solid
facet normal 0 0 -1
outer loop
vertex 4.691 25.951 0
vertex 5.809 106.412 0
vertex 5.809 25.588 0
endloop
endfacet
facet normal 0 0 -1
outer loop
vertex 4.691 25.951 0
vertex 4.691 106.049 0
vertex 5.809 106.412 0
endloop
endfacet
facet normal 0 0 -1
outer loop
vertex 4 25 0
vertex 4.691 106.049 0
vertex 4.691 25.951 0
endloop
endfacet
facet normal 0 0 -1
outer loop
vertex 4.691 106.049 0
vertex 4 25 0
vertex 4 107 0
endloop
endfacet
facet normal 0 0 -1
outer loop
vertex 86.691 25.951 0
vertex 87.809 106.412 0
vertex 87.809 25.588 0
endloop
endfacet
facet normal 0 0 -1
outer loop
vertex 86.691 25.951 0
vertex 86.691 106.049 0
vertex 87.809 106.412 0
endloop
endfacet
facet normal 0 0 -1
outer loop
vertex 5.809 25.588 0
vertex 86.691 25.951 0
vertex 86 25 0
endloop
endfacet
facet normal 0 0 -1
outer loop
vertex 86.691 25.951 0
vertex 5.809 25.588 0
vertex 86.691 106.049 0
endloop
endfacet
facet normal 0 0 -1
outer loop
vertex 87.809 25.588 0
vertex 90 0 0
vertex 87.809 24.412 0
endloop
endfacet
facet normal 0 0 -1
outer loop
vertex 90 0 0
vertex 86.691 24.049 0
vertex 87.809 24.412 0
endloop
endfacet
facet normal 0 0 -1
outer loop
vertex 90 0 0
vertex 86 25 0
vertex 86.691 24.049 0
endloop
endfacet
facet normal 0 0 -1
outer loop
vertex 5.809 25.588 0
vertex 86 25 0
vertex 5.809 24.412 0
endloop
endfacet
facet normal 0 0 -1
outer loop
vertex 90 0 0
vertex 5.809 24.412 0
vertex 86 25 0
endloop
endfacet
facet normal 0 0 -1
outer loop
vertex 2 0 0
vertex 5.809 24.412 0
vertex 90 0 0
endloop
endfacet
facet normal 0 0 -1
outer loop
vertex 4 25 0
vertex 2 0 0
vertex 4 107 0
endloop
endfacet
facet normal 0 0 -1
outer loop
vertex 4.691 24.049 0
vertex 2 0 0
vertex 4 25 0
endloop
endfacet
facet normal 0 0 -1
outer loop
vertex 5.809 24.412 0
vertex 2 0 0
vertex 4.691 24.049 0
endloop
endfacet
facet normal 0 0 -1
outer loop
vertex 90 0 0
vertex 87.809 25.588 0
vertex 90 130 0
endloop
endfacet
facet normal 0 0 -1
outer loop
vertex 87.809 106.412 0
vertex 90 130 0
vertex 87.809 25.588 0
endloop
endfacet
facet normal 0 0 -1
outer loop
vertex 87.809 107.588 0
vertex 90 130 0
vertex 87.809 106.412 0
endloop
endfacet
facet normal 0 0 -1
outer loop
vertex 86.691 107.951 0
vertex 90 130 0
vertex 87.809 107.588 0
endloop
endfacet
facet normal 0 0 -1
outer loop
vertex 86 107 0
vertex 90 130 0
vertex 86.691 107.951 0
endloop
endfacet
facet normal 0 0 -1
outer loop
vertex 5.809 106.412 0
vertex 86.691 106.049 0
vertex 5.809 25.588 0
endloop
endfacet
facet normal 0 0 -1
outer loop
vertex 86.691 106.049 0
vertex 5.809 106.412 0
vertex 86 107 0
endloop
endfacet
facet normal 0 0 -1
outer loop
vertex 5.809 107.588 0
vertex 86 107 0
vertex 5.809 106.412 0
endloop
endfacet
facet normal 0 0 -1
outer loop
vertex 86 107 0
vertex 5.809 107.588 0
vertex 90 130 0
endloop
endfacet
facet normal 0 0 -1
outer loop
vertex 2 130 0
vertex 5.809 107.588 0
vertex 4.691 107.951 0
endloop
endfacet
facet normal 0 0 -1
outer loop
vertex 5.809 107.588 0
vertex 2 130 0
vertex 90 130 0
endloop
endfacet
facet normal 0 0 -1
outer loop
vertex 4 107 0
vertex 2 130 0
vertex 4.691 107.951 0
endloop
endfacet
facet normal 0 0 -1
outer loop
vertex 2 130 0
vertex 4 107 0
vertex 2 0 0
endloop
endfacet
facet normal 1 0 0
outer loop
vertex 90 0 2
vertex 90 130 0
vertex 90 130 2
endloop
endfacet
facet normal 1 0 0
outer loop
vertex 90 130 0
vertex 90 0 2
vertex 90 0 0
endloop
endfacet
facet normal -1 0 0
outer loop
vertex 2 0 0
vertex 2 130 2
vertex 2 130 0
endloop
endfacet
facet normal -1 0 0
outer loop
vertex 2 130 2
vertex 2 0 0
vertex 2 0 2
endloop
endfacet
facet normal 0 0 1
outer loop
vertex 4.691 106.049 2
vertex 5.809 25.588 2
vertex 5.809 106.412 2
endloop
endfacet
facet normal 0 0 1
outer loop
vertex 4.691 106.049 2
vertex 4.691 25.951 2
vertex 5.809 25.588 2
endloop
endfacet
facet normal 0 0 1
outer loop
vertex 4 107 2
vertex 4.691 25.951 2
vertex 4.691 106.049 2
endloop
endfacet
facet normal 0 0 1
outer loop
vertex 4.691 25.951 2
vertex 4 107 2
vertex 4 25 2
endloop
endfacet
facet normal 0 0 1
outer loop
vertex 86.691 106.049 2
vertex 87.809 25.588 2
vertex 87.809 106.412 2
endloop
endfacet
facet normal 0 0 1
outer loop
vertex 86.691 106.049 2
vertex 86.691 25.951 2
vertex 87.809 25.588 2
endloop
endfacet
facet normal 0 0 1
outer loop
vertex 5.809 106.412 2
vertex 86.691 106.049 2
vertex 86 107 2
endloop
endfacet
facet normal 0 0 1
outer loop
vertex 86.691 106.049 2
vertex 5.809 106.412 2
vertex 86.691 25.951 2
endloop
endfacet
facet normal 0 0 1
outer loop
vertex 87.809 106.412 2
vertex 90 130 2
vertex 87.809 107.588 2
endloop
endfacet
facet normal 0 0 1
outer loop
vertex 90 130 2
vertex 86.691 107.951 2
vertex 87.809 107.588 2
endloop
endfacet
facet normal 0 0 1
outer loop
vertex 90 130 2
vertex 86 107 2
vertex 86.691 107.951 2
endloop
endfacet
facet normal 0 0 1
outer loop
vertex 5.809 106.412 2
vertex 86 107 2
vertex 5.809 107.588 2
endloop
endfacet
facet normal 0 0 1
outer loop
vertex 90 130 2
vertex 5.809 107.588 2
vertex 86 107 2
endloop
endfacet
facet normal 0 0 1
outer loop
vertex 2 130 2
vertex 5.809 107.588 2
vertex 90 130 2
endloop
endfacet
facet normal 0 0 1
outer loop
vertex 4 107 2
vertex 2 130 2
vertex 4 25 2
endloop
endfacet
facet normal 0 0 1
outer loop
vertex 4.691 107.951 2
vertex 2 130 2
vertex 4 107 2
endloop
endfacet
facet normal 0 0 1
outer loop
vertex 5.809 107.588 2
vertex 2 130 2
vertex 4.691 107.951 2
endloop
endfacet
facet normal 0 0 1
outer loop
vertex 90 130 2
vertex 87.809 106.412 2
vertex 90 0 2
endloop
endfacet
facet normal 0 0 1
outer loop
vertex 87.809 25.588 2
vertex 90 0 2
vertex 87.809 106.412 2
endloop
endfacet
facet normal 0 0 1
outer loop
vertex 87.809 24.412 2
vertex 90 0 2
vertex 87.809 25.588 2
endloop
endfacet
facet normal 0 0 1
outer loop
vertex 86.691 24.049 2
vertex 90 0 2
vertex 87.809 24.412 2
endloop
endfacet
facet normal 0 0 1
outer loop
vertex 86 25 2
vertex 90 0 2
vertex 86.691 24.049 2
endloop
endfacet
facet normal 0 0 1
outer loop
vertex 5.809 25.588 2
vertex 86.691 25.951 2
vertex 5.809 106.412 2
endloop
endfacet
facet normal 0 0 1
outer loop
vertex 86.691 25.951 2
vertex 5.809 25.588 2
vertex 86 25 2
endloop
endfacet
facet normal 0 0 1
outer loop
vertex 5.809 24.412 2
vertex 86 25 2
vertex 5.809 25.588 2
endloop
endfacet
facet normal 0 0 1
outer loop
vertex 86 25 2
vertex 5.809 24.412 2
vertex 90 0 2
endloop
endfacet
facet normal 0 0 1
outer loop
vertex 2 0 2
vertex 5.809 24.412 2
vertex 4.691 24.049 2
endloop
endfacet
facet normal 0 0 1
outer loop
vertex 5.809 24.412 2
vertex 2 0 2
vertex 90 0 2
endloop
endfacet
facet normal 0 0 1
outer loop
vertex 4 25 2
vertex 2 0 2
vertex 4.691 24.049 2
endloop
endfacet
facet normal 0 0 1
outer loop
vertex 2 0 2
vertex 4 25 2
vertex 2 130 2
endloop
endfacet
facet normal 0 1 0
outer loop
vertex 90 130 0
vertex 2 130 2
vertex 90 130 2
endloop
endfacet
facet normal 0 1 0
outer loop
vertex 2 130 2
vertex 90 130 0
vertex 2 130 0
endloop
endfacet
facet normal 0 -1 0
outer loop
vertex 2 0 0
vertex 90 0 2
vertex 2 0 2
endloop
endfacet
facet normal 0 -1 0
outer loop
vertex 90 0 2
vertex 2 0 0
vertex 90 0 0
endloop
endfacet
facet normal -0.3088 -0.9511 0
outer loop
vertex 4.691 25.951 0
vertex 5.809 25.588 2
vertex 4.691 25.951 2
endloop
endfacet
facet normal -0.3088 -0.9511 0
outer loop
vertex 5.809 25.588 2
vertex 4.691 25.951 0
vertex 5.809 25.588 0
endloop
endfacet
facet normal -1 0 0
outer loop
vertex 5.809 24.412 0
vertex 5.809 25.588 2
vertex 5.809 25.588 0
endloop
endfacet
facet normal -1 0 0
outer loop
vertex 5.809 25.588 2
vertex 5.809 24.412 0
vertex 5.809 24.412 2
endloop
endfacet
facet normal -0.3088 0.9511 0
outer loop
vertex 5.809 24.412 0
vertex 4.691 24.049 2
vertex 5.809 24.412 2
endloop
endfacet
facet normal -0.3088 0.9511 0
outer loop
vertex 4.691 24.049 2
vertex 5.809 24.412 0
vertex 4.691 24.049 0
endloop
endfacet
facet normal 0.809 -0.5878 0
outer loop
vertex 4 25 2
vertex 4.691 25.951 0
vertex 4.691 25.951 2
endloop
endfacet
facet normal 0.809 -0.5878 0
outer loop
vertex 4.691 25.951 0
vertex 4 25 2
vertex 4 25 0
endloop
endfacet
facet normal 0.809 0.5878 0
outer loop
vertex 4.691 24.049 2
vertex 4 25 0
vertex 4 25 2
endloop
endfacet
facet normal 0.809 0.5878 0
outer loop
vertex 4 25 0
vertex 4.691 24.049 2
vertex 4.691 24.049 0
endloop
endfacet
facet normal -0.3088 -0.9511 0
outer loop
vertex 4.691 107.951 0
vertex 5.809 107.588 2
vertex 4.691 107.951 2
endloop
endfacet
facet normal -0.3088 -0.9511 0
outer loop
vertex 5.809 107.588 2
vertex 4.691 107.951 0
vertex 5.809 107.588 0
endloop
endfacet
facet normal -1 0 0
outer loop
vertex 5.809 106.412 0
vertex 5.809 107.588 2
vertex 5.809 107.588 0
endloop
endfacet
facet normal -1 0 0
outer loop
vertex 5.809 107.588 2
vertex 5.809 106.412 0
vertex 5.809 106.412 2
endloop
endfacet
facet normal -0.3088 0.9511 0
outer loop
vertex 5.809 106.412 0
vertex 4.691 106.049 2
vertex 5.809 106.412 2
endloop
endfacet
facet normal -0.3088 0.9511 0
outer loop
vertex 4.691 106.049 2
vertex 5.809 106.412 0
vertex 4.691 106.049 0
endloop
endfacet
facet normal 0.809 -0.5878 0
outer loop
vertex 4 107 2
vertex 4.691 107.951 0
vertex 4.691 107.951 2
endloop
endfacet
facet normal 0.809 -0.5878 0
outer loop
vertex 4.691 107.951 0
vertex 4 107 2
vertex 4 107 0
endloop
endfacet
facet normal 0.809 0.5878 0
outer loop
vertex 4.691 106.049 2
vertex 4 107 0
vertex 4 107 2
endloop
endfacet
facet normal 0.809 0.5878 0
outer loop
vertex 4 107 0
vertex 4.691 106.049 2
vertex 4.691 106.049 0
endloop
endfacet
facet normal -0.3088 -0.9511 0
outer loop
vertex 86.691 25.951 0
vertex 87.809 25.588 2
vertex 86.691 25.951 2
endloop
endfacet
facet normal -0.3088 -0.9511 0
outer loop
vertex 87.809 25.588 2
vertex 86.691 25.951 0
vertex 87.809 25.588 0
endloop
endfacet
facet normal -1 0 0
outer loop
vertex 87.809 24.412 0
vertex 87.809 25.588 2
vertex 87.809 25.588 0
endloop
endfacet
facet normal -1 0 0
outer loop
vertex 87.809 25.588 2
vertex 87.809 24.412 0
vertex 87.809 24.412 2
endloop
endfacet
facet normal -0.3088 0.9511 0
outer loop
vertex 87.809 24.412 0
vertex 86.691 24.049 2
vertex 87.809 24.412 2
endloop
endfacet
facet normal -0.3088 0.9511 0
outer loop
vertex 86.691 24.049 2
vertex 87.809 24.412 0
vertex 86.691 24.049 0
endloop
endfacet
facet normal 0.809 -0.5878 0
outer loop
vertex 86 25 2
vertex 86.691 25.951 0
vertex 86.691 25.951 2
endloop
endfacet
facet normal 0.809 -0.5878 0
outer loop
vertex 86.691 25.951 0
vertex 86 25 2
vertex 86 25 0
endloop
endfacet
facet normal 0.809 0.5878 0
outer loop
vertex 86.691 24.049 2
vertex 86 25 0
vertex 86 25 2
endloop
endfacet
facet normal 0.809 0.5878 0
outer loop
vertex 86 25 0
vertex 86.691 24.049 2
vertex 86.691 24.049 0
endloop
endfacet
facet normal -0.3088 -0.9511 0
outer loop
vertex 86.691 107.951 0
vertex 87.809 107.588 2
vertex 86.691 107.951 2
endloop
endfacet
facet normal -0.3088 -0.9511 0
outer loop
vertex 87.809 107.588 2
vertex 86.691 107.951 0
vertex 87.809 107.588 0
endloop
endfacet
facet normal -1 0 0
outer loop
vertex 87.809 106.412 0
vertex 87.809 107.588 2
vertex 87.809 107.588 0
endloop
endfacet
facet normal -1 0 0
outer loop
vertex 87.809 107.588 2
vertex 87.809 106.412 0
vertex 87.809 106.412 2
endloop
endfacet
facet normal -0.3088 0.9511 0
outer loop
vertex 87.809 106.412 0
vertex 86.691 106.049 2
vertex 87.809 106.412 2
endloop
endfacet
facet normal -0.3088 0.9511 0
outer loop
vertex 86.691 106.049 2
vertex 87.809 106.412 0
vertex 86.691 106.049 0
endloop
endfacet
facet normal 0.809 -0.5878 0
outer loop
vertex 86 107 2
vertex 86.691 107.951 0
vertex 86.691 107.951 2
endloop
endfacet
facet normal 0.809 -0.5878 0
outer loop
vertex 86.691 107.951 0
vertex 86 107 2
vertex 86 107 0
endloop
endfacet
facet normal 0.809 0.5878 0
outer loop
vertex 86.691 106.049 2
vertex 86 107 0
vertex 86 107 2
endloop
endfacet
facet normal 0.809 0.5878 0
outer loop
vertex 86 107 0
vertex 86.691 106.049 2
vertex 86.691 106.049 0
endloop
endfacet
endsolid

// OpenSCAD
//Main back wall

translate([0,0,106])
rotate([90,90,90])
union(){
translate([84+20,0,2]){
difference(){
cube([2,130,88]);
rotate([0,90,0])
translate([-3,25,1])
#cylinder(d=2,h=4,center=true);

rotate([0,90,0])
translate([-3,107,1])
#cylinder(d=2,h=4,center=true);

rotate([0,90,0])
translate([-85,25,1])
#cylinder(d=2,h=4,center=true);

rotate([0,90,0])
translate([-85,107,1])
#cylinder(d=2,h=4,center=true);
}
}
}

//Main Back wall ends.
